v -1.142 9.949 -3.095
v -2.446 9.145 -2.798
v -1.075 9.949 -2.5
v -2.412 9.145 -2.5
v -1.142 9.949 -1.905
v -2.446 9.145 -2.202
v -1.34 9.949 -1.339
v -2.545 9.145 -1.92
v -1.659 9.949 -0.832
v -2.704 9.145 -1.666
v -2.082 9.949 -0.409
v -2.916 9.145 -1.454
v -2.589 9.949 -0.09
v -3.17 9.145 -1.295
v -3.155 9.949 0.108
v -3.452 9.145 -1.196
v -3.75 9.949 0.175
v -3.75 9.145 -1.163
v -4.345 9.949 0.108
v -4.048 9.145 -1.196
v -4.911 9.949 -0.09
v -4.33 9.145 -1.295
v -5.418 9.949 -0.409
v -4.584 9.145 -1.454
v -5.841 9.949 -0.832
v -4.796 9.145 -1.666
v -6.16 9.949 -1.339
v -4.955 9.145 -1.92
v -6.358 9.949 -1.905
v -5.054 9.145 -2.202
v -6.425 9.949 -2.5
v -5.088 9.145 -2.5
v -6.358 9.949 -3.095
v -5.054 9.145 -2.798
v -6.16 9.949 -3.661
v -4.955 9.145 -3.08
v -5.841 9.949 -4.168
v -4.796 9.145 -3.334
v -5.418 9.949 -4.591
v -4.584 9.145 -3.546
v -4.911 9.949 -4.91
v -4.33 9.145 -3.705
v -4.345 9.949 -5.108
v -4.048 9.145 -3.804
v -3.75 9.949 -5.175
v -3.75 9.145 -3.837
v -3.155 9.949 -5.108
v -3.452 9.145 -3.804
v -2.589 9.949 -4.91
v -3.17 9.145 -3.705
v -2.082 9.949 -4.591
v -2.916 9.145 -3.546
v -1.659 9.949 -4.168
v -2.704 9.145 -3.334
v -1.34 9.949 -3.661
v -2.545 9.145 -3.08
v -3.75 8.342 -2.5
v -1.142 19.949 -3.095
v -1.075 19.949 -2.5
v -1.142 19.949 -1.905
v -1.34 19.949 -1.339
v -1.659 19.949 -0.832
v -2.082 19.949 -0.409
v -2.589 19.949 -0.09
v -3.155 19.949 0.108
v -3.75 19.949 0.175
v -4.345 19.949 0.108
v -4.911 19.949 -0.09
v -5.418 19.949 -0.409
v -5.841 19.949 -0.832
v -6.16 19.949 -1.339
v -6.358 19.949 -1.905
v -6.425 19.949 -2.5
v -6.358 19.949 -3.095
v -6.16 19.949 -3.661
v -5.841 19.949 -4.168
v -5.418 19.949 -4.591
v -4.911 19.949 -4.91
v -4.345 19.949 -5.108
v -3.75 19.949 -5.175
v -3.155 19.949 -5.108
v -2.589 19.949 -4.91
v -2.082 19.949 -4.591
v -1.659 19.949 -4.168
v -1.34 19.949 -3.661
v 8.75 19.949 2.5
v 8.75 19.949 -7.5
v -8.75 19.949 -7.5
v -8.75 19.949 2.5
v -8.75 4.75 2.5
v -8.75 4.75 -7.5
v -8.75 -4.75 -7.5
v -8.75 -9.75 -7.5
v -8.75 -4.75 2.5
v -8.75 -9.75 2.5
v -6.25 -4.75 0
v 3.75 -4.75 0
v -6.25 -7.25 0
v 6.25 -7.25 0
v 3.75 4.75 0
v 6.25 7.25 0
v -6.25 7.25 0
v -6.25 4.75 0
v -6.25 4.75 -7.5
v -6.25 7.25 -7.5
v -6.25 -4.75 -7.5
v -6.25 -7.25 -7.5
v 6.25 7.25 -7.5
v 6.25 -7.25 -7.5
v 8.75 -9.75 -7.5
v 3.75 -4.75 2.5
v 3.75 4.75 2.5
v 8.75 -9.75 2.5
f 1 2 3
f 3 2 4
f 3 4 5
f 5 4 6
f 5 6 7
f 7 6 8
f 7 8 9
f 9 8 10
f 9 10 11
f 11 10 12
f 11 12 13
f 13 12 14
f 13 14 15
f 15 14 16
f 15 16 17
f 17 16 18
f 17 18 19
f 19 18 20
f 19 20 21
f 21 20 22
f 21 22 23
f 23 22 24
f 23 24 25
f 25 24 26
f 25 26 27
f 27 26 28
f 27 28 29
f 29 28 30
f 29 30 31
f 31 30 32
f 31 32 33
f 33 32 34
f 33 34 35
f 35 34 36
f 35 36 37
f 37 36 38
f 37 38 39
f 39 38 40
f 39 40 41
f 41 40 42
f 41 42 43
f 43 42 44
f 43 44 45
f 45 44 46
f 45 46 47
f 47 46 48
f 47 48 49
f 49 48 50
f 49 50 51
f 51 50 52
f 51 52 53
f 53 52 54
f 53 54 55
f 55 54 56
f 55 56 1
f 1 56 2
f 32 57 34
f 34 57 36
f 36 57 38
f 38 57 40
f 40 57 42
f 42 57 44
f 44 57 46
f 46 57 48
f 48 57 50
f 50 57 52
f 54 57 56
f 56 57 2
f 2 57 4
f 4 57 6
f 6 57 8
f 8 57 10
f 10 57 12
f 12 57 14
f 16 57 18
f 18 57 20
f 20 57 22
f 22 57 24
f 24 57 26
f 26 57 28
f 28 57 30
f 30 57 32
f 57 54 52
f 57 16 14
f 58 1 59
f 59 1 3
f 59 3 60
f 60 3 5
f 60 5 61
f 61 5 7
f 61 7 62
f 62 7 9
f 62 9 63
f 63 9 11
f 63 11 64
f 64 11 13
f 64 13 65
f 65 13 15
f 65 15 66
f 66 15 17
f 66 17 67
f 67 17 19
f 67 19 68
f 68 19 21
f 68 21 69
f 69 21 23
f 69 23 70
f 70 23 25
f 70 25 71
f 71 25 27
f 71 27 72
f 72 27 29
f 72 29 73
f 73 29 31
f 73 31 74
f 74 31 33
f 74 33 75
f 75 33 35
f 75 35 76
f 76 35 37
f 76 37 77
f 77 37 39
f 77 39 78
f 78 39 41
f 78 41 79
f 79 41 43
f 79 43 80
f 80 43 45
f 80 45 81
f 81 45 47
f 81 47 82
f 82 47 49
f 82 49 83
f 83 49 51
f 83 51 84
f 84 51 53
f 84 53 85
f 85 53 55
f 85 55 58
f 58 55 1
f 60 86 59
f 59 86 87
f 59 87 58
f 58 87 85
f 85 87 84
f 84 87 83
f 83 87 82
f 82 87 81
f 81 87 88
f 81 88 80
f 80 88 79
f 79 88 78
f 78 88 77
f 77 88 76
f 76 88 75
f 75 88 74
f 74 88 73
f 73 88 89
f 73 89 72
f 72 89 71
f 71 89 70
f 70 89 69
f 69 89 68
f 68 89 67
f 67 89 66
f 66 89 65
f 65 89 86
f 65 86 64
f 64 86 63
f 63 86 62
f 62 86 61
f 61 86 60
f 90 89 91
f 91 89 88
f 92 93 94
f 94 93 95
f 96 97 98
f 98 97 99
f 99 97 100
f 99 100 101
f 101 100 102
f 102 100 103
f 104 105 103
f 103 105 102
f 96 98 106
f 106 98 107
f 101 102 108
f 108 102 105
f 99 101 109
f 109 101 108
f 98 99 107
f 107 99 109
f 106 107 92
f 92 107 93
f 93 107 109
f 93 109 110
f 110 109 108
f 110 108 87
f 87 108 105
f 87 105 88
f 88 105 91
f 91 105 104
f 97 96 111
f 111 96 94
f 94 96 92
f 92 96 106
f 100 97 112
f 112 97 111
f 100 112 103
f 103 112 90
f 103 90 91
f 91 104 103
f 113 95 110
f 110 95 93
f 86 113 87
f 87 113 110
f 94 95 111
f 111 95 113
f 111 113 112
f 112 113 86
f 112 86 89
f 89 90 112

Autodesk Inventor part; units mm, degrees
ref_plane "YZ Plane" through (0, 0, 0) normal (1, 0, 0) x (0, 1, 0)
ref_plane "XZ Plane" through (0, 0, 0) normal (0, 1, 0) x (-1, 0, 0)
ref_plane "XY Plane" through (0, 0, 0) normal (0, 0, 1) x (1, 0, 0)
sketch "Sketch1" plane through (0, 0, 0) normal (0, 0, 1) x (1, 0, 0)
  line L0 (-6.25, -7.25) -> (6.25, -7.25)
  line L1 (6.25, -7.25) -> (6.25, 7.25)
  line L2 (6.25, 7.25) -> (-6.25, 7.25)
  line L3 (-6.25, 7.25) -> (-6.25, -7.25)
  line L4 (-6.25, -7.25) -> (6.25, 7.25) construction
  line L5 (6.25, -7.25) -> (-6.25, 7.25) construction
  line L6 (-8.75, -9.75) -> (8.75, -9.75)
  line L7 (8.75, -9.75) -> (8.75, 9.75)
  line L8 (8.75, 9.75) -> (-8.75, 9.75)
  line L9 (-8.75, 9.75) -> (-8.75, -9.75)
  line L10 (-8.75, -9.75) -> (8.75, 9.75) construction
  line L11 (8.75, -9.75) -> (-8.75, 9.75) construction
  line L12 (-3.75, -4.75) -> (3.75, -4.75)
  line L13 (3.75, -4.75) -> (3.75, 4.75)
  line L14 (3.75, 4.75) -> (-3.75, 4.75)
  line L15 (-3.75, 4.75) -> (-3.75, -4.75)
  line L16 (-3.75, -4.75) -> (3.75, 4.75) construction
  line L17 (3.75, -4.75) -> (-3.75, 4.75) construction
  point P0 (0, 0)
  dimension "d0" = 12.5
  dimension "d1" = 14.5
  dimension "d2" = 17.5
  dimension "d3" = 19.5
  dimension "d4" = 7.5
  dimension "d5" = 9.5
extrude "Extrusion1" add sketch "Sketch1" along normal blind 2.5 contours L3 L2 L1 L0 | L9 L8 L7 L6
extrude "Extrusion2" add sketch "Sketch1" against normal blind 7.5 contours L9 L8 L7 L6
sketch "Sketch2" plane through (0, 0, 2.5) normal (0, 0, 1) x (1, 0, 0)
  line L0 (-8.75, -9.75) -> (-8.75, 9.75) projected
  line L1 (-3.75, -4.75) -> (-8.75, -4.75)
  line L2 (-8.75, -4.75) -> (-8.75, 4.75)
  line L3 (-8.75, 4.75) -> (-3.75, 4.75)
  line L4 (-3.75, 4.75) -> (-3.75, -4.75)
  line L5 (-3.75, -4.75) -> (-3.75, 4.75) projected
  point P0 (0, 0)
  point P1 (-3.75, 0)
extrude "Extrusion3" cut sketch "Sketch2" against normal through all
thicken "Thicken1" operation add thickness 10.199 both sides no extend neighbours no toward (0, 1, 0) faces at (2.9167, 9.75, -0.8333)
sketch "Sketch3" plane through (-8.75, 19.949, 2.5) normal (0, 1, 0) x (1, 0, 0)
  line L0 (0, 10) -> (0, 0) projected
  point P0 (8.75, 2.5)
  point P1 (5, 5)
  point P2 (0, 5)
  dimension "d22" = 5
hole "Hole1" at (-3.75, 19.949, -2.5) direction (0, -1, 0) diameter 5.35 depth 10 tip angle 118
properties part number "Adafruit_1528_4663-ND_House_01"
